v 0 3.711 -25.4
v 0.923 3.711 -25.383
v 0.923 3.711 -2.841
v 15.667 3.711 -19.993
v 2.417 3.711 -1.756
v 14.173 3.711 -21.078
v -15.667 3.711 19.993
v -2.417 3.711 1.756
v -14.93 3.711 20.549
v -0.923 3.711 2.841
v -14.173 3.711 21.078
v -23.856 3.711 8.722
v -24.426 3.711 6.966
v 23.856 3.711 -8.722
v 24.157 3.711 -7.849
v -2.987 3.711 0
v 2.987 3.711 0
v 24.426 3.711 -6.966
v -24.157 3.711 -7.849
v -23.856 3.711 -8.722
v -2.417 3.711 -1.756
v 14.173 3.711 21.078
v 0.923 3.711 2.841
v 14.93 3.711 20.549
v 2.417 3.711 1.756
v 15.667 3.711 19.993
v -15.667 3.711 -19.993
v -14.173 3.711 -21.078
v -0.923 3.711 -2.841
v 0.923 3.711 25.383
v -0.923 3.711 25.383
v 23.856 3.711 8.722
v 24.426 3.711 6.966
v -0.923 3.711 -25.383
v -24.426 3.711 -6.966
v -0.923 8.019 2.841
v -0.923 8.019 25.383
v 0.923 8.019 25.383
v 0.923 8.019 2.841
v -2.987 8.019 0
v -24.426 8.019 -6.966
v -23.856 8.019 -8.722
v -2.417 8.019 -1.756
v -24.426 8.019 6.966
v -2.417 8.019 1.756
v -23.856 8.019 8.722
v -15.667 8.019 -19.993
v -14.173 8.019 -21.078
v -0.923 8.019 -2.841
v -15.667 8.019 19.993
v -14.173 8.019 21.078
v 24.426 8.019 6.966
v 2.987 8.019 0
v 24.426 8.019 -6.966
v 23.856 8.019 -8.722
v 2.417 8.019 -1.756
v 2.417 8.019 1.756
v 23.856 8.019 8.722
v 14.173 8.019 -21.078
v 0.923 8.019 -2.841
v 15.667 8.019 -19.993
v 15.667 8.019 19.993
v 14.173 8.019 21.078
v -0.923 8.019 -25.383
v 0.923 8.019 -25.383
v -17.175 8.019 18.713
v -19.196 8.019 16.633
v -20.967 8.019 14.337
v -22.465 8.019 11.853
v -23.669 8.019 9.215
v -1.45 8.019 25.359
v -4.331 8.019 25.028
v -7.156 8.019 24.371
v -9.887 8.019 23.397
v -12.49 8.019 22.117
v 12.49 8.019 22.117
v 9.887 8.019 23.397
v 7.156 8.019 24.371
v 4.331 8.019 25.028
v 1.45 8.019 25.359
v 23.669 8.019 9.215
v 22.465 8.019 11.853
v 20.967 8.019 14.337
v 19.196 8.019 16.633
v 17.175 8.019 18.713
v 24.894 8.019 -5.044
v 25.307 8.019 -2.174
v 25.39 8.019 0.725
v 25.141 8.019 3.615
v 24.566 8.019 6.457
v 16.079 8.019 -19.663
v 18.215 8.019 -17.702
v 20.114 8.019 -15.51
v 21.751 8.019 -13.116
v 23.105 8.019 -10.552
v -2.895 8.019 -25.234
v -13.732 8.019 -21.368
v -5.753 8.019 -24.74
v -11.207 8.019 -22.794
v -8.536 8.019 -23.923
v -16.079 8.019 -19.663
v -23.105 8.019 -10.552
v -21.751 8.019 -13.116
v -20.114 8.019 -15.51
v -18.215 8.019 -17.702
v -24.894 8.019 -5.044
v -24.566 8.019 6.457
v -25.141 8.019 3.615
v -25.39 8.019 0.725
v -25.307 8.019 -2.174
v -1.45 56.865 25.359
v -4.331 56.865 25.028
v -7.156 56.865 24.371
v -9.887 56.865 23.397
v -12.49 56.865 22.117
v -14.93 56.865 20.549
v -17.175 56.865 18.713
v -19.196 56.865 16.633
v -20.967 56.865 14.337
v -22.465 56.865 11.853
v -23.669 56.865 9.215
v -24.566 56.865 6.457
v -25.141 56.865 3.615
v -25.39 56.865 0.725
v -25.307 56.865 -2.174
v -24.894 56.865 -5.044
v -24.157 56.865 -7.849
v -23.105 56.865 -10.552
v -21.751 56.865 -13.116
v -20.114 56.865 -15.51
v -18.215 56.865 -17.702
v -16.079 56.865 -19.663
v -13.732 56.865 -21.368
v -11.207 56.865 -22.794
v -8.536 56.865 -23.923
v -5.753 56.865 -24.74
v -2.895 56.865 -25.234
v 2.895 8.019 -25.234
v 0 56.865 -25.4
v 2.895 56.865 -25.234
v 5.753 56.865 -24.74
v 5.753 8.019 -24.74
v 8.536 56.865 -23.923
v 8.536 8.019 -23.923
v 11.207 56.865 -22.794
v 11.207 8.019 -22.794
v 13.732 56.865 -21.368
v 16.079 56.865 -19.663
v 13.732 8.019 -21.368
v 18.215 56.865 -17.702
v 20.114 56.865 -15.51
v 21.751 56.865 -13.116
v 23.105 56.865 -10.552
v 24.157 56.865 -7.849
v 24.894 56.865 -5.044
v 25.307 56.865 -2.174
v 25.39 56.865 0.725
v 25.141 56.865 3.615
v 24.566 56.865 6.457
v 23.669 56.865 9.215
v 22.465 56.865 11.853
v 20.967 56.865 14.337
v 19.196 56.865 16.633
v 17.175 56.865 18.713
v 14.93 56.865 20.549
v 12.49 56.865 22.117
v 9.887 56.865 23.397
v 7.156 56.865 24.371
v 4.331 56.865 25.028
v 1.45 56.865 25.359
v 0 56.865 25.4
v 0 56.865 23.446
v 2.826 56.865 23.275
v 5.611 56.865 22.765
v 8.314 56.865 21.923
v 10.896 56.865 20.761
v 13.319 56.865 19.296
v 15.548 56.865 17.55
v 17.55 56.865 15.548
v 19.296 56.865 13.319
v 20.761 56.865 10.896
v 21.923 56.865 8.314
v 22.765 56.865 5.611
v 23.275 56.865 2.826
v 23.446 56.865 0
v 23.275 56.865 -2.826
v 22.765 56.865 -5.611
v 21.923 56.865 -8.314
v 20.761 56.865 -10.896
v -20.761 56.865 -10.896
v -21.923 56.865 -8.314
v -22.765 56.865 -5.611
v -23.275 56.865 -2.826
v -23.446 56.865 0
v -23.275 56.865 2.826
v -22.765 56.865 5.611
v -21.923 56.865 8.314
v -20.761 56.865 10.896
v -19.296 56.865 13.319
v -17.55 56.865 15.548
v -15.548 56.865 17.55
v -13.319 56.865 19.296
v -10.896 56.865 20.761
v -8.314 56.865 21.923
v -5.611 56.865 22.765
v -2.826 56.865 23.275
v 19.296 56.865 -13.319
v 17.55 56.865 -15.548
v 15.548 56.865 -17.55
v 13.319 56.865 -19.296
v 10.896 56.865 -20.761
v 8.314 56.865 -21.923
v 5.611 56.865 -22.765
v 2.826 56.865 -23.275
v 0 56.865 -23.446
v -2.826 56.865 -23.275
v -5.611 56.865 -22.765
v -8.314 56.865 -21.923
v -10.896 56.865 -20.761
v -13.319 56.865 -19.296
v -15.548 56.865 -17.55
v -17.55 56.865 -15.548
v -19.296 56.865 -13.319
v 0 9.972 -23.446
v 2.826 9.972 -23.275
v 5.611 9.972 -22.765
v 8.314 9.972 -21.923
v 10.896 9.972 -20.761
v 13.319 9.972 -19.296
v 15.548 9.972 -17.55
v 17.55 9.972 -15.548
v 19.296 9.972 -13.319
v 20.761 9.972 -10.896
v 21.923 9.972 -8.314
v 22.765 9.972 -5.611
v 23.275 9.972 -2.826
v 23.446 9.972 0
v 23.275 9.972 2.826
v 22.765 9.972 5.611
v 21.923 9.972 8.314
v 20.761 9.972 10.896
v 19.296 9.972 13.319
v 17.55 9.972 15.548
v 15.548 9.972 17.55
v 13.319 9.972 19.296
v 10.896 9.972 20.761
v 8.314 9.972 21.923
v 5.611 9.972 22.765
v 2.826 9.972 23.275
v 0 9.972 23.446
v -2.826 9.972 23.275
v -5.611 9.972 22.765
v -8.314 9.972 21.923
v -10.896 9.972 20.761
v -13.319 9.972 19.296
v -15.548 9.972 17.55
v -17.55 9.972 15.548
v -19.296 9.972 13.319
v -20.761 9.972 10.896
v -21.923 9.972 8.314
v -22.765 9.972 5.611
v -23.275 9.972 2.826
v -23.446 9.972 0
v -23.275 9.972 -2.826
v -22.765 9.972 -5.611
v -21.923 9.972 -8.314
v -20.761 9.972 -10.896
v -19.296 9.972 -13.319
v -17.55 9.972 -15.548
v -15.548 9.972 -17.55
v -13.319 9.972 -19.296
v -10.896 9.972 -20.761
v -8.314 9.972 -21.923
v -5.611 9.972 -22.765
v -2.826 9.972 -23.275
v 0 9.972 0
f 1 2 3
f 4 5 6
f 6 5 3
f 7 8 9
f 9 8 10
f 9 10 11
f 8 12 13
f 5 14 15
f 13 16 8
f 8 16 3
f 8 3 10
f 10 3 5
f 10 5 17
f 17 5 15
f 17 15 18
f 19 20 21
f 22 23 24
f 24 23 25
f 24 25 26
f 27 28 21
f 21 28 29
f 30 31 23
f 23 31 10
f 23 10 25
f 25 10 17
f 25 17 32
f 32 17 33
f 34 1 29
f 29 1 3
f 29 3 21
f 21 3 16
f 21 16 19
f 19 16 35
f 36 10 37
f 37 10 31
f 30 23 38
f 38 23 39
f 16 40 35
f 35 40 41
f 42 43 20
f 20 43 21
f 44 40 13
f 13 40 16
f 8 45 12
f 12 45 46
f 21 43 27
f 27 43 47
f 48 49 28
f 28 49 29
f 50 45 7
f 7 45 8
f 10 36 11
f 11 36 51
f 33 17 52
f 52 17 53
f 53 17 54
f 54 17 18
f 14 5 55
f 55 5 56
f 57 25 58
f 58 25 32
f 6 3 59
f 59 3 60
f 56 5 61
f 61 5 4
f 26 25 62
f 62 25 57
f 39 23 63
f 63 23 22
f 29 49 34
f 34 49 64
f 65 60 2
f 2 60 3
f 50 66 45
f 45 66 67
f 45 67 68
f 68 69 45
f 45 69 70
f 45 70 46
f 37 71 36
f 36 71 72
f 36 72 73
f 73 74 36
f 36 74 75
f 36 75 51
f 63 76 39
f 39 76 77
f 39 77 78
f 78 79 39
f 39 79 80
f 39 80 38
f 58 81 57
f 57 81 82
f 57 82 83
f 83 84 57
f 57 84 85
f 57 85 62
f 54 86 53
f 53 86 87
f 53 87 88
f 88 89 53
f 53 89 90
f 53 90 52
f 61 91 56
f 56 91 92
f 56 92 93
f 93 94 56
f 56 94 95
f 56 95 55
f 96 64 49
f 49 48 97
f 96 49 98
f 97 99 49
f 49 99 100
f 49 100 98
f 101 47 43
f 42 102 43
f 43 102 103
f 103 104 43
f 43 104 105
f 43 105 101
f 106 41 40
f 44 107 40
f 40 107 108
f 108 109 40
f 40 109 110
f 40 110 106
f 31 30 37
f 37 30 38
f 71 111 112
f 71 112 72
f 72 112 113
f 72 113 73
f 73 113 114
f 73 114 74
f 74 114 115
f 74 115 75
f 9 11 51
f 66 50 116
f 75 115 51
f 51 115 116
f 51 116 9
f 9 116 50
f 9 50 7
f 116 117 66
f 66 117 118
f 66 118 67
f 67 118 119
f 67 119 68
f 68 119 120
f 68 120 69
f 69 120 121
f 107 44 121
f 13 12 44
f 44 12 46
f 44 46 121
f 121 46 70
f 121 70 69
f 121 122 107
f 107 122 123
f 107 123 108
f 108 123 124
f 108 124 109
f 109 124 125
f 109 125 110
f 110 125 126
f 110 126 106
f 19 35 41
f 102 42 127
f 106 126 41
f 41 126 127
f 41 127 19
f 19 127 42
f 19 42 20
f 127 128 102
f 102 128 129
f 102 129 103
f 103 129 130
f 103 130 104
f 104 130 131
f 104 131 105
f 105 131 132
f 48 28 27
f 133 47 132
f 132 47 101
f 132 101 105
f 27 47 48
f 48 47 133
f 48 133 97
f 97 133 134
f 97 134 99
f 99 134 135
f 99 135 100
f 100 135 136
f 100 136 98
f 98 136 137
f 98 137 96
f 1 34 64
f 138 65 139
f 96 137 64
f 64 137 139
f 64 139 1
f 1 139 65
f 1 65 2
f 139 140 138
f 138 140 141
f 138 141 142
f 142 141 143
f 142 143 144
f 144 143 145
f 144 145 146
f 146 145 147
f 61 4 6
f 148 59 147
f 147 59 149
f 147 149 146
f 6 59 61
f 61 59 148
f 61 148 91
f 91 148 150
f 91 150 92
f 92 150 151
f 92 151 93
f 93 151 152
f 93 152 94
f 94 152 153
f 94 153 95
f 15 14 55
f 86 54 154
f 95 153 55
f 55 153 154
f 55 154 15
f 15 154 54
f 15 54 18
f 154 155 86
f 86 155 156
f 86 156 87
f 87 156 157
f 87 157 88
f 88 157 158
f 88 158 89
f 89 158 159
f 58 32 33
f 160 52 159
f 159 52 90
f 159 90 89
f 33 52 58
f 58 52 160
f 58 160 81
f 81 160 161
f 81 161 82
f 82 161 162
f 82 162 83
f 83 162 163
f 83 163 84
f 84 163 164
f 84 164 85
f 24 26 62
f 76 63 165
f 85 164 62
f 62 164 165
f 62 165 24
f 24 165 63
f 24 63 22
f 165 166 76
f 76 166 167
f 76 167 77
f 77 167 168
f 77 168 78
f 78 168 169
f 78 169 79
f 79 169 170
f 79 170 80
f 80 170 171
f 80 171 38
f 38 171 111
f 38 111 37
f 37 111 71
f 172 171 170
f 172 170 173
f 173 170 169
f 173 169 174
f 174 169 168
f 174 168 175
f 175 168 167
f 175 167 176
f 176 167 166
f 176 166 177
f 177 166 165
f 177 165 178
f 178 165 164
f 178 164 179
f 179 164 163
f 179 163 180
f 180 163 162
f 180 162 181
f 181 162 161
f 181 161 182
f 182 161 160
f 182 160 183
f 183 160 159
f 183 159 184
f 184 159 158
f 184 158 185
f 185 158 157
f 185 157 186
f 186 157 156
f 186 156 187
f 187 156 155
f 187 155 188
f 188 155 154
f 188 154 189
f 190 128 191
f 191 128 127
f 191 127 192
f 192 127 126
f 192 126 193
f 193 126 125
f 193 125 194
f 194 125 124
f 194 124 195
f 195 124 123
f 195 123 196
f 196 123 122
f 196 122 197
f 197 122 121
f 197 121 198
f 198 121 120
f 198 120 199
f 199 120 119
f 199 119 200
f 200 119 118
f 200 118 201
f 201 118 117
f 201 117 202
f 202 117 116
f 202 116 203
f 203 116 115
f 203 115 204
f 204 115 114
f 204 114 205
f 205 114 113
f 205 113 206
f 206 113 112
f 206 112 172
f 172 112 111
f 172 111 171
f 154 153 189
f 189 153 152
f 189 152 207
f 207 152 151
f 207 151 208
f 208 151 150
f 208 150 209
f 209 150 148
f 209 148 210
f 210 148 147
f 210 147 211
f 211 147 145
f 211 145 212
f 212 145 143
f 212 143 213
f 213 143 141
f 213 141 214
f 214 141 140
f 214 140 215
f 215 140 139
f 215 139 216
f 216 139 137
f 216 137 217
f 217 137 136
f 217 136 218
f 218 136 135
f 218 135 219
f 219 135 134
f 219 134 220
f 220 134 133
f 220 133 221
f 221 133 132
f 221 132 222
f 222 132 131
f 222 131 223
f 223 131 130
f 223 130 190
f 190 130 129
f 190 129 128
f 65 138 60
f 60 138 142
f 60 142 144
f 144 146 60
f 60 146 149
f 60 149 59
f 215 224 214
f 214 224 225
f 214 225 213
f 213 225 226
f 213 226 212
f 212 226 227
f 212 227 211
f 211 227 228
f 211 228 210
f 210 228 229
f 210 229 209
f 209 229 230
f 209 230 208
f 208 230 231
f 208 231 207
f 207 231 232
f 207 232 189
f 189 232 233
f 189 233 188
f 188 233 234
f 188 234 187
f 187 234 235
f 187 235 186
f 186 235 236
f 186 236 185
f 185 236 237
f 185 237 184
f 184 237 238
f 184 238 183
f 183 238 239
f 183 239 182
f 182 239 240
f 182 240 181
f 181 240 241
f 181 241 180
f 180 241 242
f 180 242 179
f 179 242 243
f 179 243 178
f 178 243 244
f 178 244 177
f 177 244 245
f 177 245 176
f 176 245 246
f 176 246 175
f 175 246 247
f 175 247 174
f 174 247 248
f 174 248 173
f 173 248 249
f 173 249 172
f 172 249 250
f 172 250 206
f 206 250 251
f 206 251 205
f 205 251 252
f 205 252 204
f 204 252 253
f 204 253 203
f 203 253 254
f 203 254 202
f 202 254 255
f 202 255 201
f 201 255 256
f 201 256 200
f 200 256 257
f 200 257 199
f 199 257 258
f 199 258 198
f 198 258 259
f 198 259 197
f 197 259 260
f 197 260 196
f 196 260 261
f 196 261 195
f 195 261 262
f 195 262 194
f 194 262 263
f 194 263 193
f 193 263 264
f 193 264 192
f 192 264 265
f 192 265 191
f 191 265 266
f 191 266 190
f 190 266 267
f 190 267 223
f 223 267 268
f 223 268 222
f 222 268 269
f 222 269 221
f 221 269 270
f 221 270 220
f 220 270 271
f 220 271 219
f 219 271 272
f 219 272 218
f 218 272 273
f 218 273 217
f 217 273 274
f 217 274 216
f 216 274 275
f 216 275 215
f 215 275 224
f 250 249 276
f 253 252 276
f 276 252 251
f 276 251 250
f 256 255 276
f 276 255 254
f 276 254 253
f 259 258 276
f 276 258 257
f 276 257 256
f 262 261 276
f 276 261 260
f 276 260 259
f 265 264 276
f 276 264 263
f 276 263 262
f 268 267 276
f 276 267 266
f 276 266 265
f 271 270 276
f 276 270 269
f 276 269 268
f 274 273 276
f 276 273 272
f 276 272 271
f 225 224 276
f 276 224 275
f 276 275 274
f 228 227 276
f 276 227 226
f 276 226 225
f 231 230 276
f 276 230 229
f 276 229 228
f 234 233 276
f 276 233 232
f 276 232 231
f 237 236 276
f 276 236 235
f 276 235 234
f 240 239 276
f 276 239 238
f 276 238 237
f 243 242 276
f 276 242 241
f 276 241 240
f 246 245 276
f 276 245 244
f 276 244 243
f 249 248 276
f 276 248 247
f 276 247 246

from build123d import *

# Parameters (mm, degrees)
SKETCH1_R               = 38.1
BOSS_EXTRUDE1_DEPTH     = 76.2
SHELL2_T                = 3.175
SKETCH2_W               = 3
SKETCH2_H               = 82.55
BOSS_EXTRUDE2_DEPTH     = 7
CUT_EXTRUDE1_DEPTH      = 99.527366122
CUT_EXTRUDE1_DEPTH_BACK = 99.527366122
SKETCH3_R               = 61.906276858
SKETCH3_R_2             = 41.275
SCALE1_SCALE            = 0.615384615


with BuildPart() as part:
    # Sketch1 → Boss-Extrude1 (new body)
    with BuildSketch(Plane(origin=(0, 0, 0), x_dir=(1, 0, 0), z_dir=(0, 1, 0))):
        Circle(SKETCH1_R)
    extrude(amount=BOSS_EXTRUDE1_DEPTH)

    # Shell2
    shell2_openings = [part.faces().sort_by_distance(p)[0] for p in [
        (0, 76.2, 0),
    ]]
    offset(amount=SHELL2_T, openings=shell2_openings, kind=Kind.INTERSECTION)

    # Sketch2 → Boss-Extrude2 (add)
    with BuildSketch(Plane(origin=(0, -3.175, 0), x_dir=(-1, 0, 0), z_dir=(0, -1, 0))):
        Rectangle(SKETCH2_W, SKETCH2_H)
        Polygon((-23.047310797, -34.273854321), (25.47436178, 32.510498564), (23.047310797, 34.273854321), (-25.47436178, -32.510498564), align=None)
        Polygon((-38.791332219, -14.181261217), (39.718383202, 11.328091668), (38.791332219, 14.181261217), (-39.718383202, -11.328091668), align=None)
        Polygon((-39.718383202, 11.328091668), (38.791332219, -14.181261217), (39.718383202, -11.328091668), (-38.791332219, 14.181261217), align=None)
        Polygon((-25.47436178, 32.510498564), (23.047310797, -34.273854321), (25.47436178, -32.510498564), (-23.047310797, 34.273854321), align=None)
    extrude(amount=BOSS_EXTRUDE2_DEPTH)

    # Sketch3 → Cut-Extrude1 (cut, two sides: drawn at the far end of the back side and taken through both)
    with BuildSketch(Plane.XZ.offset(3.175).offset(-CUT_EXTRUDE1_DEPTH_BACK)):
        Circle(SKETCH3_R)
        Circle(SKETCH3_R_2, mode=Mode.SUBTRACT)
    extrude(amount=CUT_EXTRUDE1_DEPTH + CUT_EXTRUDE1_DEPTH_BACK, mode=Mode.SUBTRACT)


with BuildPart() as part_1:
    # Scale1: scaled about (0, 25.92844449, 0)
    add(part.part.scale(SCALE1_SCALE).moved(Location((0, 9.97247865, 0))))


solid = part_1.part
